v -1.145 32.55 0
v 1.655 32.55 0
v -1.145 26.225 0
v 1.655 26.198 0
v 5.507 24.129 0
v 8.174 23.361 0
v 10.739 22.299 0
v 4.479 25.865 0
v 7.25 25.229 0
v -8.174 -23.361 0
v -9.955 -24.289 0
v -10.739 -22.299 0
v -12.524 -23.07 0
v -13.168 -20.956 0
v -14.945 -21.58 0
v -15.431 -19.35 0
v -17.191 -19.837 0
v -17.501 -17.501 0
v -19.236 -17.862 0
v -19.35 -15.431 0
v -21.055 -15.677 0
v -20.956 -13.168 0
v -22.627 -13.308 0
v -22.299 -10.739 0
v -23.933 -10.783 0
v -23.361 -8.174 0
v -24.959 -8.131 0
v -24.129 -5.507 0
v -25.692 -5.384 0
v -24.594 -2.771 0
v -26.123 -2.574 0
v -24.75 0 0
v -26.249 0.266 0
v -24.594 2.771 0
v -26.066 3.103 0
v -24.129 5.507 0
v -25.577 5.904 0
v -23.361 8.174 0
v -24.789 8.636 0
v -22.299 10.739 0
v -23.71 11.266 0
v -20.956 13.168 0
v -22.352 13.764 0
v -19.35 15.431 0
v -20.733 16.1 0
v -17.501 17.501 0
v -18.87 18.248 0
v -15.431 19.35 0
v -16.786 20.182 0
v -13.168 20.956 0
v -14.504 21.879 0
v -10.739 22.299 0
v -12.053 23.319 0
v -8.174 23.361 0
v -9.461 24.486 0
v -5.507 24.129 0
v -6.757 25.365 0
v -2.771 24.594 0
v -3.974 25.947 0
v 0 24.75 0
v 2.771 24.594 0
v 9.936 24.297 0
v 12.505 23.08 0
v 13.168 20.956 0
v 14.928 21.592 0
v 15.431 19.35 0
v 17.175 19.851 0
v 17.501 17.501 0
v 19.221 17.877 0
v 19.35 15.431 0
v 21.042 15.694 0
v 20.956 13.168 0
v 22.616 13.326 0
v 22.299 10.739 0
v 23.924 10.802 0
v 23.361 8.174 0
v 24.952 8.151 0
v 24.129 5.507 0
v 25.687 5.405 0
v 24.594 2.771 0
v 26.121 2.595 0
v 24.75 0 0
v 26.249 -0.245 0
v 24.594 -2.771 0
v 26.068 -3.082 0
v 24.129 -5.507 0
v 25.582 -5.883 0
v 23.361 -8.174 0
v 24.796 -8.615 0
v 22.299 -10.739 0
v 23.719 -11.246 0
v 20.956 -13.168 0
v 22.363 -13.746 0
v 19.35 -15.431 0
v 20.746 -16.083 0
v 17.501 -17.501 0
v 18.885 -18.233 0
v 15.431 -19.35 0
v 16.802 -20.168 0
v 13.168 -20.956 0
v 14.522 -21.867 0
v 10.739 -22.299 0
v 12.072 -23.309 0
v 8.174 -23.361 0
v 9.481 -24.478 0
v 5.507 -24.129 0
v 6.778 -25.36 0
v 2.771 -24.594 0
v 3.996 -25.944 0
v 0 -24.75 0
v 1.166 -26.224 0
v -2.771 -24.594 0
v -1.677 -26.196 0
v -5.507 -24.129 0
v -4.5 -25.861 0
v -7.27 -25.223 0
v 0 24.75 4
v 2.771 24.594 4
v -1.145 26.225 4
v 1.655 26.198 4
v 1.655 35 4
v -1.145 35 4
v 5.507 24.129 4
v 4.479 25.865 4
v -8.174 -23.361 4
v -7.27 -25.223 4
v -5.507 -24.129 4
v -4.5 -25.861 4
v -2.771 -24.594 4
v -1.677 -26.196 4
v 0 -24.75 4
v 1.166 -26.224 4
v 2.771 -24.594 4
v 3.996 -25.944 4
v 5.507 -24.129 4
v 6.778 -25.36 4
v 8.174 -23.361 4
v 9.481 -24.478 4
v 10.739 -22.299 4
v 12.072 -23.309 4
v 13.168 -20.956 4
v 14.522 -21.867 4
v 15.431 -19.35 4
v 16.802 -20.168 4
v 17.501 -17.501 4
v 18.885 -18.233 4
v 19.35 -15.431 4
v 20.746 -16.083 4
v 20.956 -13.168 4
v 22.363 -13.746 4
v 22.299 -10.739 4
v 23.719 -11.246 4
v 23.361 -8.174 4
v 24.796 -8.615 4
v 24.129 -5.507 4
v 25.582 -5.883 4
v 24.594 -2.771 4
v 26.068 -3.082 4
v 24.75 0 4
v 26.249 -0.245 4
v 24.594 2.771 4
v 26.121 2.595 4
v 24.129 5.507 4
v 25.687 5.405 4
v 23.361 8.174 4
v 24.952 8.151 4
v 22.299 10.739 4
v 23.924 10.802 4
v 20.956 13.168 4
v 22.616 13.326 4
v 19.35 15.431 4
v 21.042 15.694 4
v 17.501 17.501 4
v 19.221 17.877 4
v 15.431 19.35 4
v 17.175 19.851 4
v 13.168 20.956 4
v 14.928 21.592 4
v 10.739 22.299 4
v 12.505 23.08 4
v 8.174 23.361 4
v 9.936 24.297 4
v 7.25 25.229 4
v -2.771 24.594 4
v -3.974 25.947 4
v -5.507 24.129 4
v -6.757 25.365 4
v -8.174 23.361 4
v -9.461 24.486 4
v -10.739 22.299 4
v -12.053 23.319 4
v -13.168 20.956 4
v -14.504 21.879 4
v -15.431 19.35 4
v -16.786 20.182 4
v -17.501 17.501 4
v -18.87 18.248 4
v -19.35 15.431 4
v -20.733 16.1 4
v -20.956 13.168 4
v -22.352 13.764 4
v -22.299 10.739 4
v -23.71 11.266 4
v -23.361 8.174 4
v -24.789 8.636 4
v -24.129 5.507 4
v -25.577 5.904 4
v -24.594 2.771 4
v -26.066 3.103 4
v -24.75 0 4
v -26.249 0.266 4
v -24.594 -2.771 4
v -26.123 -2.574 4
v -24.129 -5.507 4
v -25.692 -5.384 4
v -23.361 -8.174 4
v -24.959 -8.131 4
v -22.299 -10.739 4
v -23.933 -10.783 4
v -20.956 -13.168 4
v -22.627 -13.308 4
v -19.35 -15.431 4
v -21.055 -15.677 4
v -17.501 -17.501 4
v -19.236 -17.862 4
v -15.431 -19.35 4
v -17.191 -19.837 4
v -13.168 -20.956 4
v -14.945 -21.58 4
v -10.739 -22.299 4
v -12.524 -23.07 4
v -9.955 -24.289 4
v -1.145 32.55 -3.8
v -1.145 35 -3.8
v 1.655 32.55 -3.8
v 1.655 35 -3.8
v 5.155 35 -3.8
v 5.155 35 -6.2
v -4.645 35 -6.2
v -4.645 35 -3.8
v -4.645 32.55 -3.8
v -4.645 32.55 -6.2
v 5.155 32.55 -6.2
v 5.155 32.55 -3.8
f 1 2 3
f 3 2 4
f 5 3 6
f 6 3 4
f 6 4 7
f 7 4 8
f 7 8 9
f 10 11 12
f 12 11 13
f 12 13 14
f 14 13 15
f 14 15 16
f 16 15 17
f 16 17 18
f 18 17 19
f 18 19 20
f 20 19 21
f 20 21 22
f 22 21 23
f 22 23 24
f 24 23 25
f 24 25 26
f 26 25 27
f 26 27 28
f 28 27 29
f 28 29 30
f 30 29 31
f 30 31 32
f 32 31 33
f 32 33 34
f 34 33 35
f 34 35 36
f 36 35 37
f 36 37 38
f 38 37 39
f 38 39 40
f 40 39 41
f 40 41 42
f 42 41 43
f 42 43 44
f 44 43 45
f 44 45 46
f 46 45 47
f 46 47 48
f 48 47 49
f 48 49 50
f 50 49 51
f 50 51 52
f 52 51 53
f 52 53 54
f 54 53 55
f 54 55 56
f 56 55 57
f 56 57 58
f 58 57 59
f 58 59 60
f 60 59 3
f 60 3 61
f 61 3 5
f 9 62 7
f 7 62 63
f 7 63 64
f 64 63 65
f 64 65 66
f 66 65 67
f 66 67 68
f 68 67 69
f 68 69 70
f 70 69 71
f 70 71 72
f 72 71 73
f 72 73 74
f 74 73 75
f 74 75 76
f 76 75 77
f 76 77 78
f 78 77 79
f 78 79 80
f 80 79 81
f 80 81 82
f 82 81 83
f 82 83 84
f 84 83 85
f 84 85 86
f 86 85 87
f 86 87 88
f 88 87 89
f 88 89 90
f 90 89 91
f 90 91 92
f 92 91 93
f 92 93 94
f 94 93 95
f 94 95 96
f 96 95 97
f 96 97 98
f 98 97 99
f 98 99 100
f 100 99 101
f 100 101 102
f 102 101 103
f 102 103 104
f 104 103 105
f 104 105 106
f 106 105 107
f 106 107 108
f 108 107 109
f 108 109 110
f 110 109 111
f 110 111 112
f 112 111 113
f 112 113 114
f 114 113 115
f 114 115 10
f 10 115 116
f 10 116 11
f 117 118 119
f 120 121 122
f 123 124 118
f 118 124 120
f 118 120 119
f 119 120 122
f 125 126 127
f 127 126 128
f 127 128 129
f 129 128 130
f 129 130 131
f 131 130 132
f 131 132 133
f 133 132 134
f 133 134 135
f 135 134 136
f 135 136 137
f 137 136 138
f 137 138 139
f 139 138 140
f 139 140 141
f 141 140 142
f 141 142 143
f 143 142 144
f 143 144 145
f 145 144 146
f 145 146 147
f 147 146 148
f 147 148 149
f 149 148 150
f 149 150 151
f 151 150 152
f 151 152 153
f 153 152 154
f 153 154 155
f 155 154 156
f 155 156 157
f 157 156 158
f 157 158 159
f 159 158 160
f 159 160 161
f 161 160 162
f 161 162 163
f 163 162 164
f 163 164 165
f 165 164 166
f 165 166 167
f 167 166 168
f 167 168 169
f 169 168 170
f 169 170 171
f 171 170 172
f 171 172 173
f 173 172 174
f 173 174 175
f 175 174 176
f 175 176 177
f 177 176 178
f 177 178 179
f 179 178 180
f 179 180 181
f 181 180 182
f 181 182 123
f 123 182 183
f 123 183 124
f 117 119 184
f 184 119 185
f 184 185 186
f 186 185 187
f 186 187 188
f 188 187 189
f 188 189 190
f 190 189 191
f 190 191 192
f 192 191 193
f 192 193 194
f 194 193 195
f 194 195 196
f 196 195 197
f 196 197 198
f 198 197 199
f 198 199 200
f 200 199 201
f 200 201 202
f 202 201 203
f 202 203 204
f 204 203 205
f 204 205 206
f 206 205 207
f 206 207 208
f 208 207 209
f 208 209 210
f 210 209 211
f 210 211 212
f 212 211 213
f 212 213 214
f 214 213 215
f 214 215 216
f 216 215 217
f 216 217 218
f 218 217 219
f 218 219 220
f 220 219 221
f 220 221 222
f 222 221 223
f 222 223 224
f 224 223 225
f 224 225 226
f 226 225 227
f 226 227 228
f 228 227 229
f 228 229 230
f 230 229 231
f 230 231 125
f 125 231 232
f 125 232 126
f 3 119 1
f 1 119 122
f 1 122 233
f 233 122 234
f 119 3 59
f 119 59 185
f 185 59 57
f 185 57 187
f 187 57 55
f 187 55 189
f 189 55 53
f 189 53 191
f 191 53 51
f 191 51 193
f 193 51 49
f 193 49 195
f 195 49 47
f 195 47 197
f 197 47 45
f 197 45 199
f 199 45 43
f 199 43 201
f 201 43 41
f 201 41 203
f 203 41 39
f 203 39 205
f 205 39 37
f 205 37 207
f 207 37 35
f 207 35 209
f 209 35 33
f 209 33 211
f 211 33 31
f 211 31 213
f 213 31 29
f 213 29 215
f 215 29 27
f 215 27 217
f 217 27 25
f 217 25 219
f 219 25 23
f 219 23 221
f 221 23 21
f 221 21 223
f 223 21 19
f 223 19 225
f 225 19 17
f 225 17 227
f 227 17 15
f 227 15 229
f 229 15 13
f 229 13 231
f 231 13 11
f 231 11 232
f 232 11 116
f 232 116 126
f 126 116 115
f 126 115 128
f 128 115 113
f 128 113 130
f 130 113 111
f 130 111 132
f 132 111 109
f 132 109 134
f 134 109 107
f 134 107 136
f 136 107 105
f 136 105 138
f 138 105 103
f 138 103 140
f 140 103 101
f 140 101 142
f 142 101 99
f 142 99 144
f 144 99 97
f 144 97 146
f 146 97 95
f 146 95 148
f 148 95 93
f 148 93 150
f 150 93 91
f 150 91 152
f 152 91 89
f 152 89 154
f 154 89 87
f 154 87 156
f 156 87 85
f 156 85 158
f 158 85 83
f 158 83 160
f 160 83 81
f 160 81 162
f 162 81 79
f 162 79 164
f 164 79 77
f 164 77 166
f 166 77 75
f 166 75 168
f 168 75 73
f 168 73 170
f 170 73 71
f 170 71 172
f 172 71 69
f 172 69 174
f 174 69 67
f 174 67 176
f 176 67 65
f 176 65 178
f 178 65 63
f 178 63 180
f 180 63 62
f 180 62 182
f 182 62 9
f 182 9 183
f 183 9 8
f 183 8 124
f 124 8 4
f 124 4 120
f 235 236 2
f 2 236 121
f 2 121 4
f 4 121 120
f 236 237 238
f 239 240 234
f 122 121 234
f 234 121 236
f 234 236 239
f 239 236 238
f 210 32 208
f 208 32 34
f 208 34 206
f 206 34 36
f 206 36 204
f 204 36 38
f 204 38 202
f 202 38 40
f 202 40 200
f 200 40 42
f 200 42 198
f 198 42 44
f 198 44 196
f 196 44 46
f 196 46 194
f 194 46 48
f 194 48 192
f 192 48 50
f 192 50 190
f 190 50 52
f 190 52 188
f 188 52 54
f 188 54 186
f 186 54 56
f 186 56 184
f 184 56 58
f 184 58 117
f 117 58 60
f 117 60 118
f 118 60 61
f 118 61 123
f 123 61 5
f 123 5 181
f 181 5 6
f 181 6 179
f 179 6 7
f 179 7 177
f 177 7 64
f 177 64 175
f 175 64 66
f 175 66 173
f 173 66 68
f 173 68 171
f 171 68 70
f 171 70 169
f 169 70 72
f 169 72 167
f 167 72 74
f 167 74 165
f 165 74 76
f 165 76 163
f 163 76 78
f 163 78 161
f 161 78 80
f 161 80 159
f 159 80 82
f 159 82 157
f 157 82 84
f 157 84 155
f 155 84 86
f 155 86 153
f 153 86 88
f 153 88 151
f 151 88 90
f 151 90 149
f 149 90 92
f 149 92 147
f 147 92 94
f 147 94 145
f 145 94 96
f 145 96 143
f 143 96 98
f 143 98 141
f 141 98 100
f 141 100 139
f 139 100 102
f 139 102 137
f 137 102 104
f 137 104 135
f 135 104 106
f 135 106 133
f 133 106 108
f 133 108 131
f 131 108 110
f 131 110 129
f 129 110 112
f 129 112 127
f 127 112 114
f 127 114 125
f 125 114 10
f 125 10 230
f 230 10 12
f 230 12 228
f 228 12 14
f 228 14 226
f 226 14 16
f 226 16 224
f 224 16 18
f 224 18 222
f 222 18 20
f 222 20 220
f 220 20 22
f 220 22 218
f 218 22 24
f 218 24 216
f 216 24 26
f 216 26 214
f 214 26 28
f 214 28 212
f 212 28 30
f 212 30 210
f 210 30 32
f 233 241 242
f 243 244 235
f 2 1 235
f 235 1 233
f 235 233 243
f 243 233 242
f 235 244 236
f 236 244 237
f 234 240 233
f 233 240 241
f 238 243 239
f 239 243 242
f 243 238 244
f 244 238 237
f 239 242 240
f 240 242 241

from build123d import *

# Parameters (mm, degrees)
SKETCH2_R           = 24.75
BOSS_EXTRUDE1_DEPTH = 4
SKETCH3_W           = 2.8
SKETCH3_H           = 2.45
BOSS_EXTRUDE2_DEPTH = 3.8
BOSS_EXTRUDE3_START = -6.3
SKETCH4_W           = 2.4
SKETCH4_H           = 2.45
BOSS_EXTRUDE3_DEPTH = 9.8


with BuildPart() as part:
    # Sketch2 → Boss-Extrude1 (new body)
    with BuildSketch(Plane.XY):
        with BuildLine():
            Line((-1.144859813, 35), (1.655140187, 35))
            Line((1.655140187, 35), (1.655140187, 26.19776729))
            ThreePointArc((1.655140187, 26.19776729), (-0.255503863, -26.2487565), (-1.144859813, 26.225022326))
            Line((-1.144859813, 26.225022326), (-1.144859813, 35))
        make_face()
        Circle(SKETCH2_R, mode=Mode.SUBTRACT)
    extrude(amount=BOSS_EXTRUDE1_DEPTH)

    # Sketch3 → Boss-Extrude2 (add)
    with BuildSketch(Plane(origin=(0, 0, 0), x_dir=(-1, 0, 0), z_dir=(0, 0, -1))):
        with Locations((-0.255140187, 33.775)):
            Rectangle(SKETCH3_W, SKETCH3_H)
    extrude(amount=BOSS_EXTRUDE2_DEPTH)

    # Sketch4 → Boss-Extrude3 (add)
    with BuildSketch(Plane(origin=(1.655140187, 0, 0), x_dir=(0, 0, -1), z_dir=(1, 0, 0)).offset(BOSS_EXTRUDE3_START)):
        with Locations((5, 33.775)):
            Rectangle(SKETCH4_W, SKETCH4_H)
    extrude(amount=BOSS_EXTRUDE3_DEPTH)


solid = part.part
